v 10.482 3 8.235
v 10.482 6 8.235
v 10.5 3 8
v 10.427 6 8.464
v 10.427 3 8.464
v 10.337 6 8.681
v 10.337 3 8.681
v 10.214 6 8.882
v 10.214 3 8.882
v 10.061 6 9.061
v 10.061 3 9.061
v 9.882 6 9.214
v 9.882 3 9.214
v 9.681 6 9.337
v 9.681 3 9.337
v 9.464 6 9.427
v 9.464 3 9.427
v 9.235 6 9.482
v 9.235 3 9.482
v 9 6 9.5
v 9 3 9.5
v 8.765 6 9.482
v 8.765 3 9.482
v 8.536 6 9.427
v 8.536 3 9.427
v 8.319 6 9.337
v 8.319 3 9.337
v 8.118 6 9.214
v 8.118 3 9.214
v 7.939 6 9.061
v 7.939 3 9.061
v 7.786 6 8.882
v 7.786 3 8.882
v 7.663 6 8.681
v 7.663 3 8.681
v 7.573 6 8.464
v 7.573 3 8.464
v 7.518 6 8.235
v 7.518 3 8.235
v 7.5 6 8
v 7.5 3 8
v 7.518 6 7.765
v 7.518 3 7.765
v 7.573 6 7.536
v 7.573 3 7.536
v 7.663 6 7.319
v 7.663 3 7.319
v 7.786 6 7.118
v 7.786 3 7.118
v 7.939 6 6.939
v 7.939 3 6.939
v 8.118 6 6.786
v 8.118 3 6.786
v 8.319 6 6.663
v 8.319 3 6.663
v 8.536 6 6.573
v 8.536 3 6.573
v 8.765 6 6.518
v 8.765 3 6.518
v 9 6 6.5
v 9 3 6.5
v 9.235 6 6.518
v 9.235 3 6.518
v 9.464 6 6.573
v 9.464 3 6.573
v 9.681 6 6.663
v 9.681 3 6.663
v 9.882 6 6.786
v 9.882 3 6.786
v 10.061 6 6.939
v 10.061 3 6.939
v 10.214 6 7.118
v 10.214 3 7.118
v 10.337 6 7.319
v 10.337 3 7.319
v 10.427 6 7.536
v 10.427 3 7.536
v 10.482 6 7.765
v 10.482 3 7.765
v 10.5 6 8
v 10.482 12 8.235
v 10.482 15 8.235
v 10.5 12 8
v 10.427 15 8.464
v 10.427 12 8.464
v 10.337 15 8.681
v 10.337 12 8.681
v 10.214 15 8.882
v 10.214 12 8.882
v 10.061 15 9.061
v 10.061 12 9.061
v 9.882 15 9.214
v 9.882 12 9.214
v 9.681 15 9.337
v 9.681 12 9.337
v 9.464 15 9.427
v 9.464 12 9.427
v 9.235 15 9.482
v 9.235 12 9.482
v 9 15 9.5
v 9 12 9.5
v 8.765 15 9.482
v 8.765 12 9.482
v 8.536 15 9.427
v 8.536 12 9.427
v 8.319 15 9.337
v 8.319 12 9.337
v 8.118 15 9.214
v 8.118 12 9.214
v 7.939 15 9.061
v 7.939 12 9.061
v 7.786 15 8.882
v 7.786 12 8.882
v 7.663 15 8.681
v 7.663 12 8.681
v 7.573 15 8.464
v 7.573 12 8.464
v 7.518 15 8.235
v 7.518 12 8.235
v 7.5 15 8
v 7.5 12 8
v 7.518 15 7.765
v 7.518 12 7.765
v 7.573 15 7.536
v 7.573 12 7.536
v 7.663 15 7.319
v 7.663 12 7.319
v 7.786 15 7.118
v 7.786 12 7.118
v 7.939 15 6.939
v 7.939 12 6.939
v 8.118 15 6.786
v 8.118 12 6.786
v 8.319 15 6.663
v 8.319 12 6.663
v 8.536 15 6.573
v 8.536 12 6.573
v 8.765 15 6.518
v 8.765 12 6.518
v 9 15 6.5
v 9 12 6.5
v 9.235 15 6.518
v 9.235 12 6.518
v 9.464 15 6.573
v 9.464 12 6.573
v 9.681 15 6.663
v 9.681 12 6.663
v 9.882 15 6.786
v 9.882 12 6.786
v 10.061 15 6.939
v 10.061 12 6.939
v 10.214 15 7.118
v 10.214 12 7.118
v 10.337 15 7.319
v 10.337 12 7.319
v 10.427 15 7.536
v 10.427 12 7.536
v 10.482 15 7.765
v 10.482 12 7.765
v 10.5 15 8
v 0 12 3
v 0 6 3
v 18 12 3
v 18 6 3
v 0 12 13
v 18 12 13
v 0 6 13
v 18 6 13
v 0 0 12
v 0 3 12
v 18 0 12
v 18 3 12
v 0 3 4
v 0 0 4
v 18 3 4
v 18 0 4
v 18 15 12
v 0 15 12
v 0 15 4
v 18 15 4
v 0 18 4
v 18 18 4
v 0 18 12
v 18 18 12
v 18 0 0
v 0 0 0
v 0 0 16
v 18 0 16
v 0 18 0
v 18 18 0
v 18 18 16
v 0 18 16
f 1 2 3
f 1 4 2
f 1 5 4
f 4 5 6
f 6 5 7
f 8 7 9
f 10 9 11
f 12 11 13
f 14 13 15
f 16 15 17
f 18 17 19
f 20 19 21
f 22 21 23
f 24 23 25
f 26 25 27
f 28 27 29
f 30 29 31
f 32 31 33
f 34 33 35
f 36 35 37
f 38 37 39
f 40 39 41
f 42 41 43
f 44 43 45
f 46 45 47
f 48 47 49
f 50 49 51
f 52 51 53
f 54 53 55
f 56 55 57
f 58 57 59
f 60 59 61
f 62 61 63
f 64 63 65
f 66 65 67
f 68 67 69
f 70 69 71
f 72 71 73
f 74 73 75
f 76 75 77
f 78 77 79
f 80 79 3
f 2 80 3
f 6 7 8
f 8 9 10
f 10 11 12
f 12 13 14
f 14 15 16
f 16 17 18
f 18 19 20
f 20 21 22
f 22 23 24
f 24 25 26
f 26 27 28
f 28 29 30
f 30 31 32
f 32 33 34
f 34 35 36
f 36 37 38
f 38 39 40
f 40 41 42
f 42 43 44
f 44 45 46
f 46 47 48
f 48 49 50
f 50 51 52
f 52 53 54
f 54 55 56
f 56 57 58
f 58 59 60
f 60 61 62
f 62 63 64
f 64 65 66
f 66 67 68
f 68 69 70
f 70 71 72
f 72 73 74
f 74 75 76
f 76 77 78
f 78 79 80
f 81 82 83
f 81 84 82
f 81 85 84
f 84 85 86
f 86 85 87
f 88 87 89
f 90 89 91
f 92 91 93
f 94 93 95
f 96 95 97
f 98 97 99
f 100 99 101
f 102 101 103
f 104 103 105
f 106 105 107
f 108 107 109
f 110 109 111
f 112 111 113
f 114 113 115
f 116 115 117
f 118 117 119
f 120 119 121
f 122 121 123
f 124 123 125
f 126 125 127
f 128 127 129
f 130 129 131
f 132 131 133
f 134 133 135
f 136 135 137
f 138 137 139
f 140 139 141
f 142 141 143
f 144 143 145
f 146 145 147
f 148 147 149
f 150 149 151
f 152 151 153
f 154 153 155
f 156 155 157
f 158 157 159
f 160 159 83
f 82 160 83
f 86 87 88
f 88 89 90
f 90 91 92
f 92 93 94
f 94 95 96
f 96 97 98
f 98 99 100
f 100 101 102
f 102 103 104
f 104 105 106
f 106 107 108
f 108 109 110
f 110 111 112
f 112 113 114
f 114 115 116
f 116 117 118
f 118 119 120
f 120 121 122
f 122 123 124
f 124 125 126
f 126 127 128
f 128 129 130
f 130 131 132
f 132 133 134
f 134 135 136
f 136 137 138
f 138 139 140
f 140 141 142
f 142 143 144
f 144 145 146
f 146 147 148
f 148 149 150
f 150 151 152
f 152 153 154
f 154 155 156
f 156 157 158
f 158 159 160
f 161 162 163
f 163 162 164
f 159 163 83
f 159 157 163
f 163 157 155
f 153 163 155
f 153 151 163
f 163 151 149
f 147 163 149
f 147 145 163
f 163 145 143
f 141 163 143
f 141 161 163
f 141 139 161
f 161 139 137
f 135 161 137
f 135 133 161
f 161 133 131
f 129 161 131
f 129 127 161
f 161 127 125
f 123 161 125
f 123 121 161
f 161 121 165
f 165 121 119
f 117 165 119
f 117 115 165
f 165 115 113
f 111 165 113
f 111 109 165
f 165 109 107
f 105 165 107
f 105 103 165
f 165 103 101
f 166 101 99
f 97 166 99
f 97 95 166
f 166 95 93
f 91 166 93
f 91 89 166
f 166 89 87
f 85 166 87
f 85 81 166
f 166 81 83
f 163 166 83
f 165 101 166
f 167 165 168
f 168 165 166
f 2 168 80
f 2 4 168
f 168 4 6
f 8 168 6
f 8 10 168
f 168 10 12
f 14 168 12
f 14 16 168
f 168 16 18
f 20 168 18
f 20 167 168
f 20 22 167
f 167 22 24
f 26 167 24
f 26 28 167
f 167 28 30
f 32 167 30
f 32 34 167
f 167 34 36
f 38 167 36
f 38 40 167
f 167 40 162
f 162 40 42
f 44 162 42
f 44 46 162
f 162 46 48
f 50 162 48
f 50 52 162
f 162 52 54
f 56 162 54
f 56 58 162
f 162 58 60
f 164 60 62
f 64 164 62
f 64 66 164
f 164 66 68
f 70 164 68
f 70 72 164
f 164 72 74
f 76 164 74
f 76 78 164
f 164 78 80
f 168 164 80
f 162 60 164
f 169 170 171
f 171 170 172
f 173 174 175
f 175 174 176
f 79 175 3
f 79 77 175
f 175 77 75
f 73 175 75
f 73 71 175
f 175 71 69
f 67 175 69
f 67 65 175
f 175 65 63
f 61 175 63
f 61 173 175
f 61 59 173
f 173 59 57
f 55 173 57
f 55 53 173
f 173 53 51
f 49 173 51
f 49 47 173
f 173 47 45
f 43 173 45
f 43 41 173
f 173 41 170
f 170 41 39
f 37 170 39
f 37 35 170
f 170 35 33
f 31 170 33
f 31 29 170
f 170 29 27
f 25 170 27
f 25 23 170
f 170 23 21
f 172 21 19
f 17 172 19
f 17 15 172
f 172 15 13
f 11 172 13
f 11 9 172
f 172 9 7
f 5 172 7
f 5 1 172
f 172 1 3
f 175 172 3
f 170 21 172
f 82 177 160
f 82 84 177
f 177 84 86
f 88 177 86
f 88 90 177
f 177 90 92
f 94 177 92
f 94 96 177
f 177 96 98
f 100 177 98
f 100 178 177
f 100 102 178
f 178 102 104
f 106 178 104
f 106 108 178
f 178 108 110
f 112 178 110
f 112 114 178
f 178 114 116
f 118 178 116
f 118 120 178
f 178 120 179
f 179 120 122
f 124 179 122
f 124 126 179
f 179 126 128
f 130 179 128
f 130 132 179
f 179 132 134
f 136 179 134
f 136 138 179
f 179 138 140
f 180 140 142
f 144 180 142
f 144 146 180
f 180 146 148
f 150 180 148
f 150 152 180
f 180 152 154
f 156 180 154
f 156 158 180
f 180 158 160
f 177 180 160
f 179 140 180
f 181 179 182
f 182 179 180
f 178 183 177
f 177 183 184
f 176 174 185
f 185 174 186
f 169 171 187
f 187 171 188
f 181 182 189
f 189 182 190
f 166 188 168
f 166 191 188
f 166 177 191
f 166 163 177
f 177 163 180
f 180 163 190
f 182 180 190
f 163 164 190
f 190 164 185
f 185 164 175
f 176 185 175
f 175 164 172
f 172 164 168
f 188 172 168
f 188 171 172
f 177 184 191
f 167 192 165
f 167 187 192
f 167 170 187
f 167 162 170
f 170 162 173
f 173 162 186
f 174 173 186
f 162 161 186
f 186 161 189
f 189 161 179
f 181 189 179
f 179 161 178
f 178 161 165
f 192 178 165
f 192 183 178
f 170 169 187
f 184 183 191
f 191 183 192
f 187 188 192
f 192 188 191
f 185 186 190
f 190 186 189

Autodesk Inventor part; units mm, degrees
ref_plane "YZ Plane" through (0, 0, 0) normal (1, 0, 0) x (0, 1, 0)
ref_plane "XZ Plane" through (0, 0, 0) normal (0, 1, 0) x (-1, 0, 0)
ref_plane "XY Plane" through (0, 0, 0) normal (0, 0, 1) x (1, 0, 0)
sketch "Sketch1" plane through (0, 0, 0) normal (0, 0, 1) x (1, 0, 0)
  line L0 (0, 0) -> (18, 0)
  line L1 (18, 0) -> (18, 18)
  line L2 (18, 18) -> (0, 18)
  line L3 (0, 18) -> (0, 0)
  dimension "d0" = 18
  dimension "d1" = 18
extrude "Extrusion1" add sketch "Sketch1" along normal blind 16
sketch "Sketch2" plane through (18, 0, 0) normal (1, 0, 0) x (0, 0, -1)
  line L0 (-16, 0) -> (-12, 0)
  line L1 (0, 0) -> (-16, 0) projected
  line L2 (-12, 0) -> (-12, 3)
  line L3 (-12, 3) -> (-4, 3)
  line L4 (-4, 3) -> (-4, 0)
  line L5 (-16, 0) -> (-16, 18) projected
  line L6 (-16, 18) -> (-12, 18)
  line L7 (0, 18) -> (-16, 18) projected
  line L8 (-12, 15) -> (-4, 15)
  line L9 (-4, 15) -> (-4, 18)
  line L10 (-12, 18) -> (-12, 15)
  dimension "d4" = 4
  dimension "d5" = 3
  dimension "d6" = 8
  dimension "d7" = 4
  dimension "d8" = 8
  dimension "d9" = 3
extrude "Extrusion2" cut sketch "Sketch2" against normal through all
sketch "Sketch3" plane through (18, 0, 0) normal (1, 0, 0) x (0, 0, -1)
  line L0 (-13, 12) -> (-3, 12)
  line L1 (-3, 12) -> (-3, 6)
  line L2 (-3, 6) -> (-13, 6)
  line L3 (-13, 6) -> (-13, 12)
  line L4 (0, 0) -> (0, 18) projected
  line L5 (-16, 0) -> (-16, 18) projected
  line L6 (-4, 15) -> (-12, 15) projected
  line L7 (-12, 3) -> (-4, 3) projected
  dimension "d12" = 3
  dimension "d13" = 3
  dimension "d14" = 3
  dimension "d15" = 3
extrude "Extrusion3" cut sketch "Sketch3" against normal through all
sketch "Sketch4" plane through (18, 15, 12) normal (0, 1, 0) x (1, 0, 0)
  circle A0 centre (-9, 4) radius 1.5
  line L0 (-18, 8) -> (0, 8) projected
  line L1 (-18, 0) -> (-18, 8) projected
  point P0 (-18, 12)
  dimension "d18" = 3
  dimension "d19" = 4
  dimension "d20" = 9
extrude "Extrusion4" cut sketch "Sketch4" against normal through all
equation "\"d7\" = d4"
equation "\"d8\" = d6"
equation "\"d9\" = d5"
equation "\"d13\" = d12"
equation "\"d15\" = d14"
properties part number "BeamConnectionPoint"
